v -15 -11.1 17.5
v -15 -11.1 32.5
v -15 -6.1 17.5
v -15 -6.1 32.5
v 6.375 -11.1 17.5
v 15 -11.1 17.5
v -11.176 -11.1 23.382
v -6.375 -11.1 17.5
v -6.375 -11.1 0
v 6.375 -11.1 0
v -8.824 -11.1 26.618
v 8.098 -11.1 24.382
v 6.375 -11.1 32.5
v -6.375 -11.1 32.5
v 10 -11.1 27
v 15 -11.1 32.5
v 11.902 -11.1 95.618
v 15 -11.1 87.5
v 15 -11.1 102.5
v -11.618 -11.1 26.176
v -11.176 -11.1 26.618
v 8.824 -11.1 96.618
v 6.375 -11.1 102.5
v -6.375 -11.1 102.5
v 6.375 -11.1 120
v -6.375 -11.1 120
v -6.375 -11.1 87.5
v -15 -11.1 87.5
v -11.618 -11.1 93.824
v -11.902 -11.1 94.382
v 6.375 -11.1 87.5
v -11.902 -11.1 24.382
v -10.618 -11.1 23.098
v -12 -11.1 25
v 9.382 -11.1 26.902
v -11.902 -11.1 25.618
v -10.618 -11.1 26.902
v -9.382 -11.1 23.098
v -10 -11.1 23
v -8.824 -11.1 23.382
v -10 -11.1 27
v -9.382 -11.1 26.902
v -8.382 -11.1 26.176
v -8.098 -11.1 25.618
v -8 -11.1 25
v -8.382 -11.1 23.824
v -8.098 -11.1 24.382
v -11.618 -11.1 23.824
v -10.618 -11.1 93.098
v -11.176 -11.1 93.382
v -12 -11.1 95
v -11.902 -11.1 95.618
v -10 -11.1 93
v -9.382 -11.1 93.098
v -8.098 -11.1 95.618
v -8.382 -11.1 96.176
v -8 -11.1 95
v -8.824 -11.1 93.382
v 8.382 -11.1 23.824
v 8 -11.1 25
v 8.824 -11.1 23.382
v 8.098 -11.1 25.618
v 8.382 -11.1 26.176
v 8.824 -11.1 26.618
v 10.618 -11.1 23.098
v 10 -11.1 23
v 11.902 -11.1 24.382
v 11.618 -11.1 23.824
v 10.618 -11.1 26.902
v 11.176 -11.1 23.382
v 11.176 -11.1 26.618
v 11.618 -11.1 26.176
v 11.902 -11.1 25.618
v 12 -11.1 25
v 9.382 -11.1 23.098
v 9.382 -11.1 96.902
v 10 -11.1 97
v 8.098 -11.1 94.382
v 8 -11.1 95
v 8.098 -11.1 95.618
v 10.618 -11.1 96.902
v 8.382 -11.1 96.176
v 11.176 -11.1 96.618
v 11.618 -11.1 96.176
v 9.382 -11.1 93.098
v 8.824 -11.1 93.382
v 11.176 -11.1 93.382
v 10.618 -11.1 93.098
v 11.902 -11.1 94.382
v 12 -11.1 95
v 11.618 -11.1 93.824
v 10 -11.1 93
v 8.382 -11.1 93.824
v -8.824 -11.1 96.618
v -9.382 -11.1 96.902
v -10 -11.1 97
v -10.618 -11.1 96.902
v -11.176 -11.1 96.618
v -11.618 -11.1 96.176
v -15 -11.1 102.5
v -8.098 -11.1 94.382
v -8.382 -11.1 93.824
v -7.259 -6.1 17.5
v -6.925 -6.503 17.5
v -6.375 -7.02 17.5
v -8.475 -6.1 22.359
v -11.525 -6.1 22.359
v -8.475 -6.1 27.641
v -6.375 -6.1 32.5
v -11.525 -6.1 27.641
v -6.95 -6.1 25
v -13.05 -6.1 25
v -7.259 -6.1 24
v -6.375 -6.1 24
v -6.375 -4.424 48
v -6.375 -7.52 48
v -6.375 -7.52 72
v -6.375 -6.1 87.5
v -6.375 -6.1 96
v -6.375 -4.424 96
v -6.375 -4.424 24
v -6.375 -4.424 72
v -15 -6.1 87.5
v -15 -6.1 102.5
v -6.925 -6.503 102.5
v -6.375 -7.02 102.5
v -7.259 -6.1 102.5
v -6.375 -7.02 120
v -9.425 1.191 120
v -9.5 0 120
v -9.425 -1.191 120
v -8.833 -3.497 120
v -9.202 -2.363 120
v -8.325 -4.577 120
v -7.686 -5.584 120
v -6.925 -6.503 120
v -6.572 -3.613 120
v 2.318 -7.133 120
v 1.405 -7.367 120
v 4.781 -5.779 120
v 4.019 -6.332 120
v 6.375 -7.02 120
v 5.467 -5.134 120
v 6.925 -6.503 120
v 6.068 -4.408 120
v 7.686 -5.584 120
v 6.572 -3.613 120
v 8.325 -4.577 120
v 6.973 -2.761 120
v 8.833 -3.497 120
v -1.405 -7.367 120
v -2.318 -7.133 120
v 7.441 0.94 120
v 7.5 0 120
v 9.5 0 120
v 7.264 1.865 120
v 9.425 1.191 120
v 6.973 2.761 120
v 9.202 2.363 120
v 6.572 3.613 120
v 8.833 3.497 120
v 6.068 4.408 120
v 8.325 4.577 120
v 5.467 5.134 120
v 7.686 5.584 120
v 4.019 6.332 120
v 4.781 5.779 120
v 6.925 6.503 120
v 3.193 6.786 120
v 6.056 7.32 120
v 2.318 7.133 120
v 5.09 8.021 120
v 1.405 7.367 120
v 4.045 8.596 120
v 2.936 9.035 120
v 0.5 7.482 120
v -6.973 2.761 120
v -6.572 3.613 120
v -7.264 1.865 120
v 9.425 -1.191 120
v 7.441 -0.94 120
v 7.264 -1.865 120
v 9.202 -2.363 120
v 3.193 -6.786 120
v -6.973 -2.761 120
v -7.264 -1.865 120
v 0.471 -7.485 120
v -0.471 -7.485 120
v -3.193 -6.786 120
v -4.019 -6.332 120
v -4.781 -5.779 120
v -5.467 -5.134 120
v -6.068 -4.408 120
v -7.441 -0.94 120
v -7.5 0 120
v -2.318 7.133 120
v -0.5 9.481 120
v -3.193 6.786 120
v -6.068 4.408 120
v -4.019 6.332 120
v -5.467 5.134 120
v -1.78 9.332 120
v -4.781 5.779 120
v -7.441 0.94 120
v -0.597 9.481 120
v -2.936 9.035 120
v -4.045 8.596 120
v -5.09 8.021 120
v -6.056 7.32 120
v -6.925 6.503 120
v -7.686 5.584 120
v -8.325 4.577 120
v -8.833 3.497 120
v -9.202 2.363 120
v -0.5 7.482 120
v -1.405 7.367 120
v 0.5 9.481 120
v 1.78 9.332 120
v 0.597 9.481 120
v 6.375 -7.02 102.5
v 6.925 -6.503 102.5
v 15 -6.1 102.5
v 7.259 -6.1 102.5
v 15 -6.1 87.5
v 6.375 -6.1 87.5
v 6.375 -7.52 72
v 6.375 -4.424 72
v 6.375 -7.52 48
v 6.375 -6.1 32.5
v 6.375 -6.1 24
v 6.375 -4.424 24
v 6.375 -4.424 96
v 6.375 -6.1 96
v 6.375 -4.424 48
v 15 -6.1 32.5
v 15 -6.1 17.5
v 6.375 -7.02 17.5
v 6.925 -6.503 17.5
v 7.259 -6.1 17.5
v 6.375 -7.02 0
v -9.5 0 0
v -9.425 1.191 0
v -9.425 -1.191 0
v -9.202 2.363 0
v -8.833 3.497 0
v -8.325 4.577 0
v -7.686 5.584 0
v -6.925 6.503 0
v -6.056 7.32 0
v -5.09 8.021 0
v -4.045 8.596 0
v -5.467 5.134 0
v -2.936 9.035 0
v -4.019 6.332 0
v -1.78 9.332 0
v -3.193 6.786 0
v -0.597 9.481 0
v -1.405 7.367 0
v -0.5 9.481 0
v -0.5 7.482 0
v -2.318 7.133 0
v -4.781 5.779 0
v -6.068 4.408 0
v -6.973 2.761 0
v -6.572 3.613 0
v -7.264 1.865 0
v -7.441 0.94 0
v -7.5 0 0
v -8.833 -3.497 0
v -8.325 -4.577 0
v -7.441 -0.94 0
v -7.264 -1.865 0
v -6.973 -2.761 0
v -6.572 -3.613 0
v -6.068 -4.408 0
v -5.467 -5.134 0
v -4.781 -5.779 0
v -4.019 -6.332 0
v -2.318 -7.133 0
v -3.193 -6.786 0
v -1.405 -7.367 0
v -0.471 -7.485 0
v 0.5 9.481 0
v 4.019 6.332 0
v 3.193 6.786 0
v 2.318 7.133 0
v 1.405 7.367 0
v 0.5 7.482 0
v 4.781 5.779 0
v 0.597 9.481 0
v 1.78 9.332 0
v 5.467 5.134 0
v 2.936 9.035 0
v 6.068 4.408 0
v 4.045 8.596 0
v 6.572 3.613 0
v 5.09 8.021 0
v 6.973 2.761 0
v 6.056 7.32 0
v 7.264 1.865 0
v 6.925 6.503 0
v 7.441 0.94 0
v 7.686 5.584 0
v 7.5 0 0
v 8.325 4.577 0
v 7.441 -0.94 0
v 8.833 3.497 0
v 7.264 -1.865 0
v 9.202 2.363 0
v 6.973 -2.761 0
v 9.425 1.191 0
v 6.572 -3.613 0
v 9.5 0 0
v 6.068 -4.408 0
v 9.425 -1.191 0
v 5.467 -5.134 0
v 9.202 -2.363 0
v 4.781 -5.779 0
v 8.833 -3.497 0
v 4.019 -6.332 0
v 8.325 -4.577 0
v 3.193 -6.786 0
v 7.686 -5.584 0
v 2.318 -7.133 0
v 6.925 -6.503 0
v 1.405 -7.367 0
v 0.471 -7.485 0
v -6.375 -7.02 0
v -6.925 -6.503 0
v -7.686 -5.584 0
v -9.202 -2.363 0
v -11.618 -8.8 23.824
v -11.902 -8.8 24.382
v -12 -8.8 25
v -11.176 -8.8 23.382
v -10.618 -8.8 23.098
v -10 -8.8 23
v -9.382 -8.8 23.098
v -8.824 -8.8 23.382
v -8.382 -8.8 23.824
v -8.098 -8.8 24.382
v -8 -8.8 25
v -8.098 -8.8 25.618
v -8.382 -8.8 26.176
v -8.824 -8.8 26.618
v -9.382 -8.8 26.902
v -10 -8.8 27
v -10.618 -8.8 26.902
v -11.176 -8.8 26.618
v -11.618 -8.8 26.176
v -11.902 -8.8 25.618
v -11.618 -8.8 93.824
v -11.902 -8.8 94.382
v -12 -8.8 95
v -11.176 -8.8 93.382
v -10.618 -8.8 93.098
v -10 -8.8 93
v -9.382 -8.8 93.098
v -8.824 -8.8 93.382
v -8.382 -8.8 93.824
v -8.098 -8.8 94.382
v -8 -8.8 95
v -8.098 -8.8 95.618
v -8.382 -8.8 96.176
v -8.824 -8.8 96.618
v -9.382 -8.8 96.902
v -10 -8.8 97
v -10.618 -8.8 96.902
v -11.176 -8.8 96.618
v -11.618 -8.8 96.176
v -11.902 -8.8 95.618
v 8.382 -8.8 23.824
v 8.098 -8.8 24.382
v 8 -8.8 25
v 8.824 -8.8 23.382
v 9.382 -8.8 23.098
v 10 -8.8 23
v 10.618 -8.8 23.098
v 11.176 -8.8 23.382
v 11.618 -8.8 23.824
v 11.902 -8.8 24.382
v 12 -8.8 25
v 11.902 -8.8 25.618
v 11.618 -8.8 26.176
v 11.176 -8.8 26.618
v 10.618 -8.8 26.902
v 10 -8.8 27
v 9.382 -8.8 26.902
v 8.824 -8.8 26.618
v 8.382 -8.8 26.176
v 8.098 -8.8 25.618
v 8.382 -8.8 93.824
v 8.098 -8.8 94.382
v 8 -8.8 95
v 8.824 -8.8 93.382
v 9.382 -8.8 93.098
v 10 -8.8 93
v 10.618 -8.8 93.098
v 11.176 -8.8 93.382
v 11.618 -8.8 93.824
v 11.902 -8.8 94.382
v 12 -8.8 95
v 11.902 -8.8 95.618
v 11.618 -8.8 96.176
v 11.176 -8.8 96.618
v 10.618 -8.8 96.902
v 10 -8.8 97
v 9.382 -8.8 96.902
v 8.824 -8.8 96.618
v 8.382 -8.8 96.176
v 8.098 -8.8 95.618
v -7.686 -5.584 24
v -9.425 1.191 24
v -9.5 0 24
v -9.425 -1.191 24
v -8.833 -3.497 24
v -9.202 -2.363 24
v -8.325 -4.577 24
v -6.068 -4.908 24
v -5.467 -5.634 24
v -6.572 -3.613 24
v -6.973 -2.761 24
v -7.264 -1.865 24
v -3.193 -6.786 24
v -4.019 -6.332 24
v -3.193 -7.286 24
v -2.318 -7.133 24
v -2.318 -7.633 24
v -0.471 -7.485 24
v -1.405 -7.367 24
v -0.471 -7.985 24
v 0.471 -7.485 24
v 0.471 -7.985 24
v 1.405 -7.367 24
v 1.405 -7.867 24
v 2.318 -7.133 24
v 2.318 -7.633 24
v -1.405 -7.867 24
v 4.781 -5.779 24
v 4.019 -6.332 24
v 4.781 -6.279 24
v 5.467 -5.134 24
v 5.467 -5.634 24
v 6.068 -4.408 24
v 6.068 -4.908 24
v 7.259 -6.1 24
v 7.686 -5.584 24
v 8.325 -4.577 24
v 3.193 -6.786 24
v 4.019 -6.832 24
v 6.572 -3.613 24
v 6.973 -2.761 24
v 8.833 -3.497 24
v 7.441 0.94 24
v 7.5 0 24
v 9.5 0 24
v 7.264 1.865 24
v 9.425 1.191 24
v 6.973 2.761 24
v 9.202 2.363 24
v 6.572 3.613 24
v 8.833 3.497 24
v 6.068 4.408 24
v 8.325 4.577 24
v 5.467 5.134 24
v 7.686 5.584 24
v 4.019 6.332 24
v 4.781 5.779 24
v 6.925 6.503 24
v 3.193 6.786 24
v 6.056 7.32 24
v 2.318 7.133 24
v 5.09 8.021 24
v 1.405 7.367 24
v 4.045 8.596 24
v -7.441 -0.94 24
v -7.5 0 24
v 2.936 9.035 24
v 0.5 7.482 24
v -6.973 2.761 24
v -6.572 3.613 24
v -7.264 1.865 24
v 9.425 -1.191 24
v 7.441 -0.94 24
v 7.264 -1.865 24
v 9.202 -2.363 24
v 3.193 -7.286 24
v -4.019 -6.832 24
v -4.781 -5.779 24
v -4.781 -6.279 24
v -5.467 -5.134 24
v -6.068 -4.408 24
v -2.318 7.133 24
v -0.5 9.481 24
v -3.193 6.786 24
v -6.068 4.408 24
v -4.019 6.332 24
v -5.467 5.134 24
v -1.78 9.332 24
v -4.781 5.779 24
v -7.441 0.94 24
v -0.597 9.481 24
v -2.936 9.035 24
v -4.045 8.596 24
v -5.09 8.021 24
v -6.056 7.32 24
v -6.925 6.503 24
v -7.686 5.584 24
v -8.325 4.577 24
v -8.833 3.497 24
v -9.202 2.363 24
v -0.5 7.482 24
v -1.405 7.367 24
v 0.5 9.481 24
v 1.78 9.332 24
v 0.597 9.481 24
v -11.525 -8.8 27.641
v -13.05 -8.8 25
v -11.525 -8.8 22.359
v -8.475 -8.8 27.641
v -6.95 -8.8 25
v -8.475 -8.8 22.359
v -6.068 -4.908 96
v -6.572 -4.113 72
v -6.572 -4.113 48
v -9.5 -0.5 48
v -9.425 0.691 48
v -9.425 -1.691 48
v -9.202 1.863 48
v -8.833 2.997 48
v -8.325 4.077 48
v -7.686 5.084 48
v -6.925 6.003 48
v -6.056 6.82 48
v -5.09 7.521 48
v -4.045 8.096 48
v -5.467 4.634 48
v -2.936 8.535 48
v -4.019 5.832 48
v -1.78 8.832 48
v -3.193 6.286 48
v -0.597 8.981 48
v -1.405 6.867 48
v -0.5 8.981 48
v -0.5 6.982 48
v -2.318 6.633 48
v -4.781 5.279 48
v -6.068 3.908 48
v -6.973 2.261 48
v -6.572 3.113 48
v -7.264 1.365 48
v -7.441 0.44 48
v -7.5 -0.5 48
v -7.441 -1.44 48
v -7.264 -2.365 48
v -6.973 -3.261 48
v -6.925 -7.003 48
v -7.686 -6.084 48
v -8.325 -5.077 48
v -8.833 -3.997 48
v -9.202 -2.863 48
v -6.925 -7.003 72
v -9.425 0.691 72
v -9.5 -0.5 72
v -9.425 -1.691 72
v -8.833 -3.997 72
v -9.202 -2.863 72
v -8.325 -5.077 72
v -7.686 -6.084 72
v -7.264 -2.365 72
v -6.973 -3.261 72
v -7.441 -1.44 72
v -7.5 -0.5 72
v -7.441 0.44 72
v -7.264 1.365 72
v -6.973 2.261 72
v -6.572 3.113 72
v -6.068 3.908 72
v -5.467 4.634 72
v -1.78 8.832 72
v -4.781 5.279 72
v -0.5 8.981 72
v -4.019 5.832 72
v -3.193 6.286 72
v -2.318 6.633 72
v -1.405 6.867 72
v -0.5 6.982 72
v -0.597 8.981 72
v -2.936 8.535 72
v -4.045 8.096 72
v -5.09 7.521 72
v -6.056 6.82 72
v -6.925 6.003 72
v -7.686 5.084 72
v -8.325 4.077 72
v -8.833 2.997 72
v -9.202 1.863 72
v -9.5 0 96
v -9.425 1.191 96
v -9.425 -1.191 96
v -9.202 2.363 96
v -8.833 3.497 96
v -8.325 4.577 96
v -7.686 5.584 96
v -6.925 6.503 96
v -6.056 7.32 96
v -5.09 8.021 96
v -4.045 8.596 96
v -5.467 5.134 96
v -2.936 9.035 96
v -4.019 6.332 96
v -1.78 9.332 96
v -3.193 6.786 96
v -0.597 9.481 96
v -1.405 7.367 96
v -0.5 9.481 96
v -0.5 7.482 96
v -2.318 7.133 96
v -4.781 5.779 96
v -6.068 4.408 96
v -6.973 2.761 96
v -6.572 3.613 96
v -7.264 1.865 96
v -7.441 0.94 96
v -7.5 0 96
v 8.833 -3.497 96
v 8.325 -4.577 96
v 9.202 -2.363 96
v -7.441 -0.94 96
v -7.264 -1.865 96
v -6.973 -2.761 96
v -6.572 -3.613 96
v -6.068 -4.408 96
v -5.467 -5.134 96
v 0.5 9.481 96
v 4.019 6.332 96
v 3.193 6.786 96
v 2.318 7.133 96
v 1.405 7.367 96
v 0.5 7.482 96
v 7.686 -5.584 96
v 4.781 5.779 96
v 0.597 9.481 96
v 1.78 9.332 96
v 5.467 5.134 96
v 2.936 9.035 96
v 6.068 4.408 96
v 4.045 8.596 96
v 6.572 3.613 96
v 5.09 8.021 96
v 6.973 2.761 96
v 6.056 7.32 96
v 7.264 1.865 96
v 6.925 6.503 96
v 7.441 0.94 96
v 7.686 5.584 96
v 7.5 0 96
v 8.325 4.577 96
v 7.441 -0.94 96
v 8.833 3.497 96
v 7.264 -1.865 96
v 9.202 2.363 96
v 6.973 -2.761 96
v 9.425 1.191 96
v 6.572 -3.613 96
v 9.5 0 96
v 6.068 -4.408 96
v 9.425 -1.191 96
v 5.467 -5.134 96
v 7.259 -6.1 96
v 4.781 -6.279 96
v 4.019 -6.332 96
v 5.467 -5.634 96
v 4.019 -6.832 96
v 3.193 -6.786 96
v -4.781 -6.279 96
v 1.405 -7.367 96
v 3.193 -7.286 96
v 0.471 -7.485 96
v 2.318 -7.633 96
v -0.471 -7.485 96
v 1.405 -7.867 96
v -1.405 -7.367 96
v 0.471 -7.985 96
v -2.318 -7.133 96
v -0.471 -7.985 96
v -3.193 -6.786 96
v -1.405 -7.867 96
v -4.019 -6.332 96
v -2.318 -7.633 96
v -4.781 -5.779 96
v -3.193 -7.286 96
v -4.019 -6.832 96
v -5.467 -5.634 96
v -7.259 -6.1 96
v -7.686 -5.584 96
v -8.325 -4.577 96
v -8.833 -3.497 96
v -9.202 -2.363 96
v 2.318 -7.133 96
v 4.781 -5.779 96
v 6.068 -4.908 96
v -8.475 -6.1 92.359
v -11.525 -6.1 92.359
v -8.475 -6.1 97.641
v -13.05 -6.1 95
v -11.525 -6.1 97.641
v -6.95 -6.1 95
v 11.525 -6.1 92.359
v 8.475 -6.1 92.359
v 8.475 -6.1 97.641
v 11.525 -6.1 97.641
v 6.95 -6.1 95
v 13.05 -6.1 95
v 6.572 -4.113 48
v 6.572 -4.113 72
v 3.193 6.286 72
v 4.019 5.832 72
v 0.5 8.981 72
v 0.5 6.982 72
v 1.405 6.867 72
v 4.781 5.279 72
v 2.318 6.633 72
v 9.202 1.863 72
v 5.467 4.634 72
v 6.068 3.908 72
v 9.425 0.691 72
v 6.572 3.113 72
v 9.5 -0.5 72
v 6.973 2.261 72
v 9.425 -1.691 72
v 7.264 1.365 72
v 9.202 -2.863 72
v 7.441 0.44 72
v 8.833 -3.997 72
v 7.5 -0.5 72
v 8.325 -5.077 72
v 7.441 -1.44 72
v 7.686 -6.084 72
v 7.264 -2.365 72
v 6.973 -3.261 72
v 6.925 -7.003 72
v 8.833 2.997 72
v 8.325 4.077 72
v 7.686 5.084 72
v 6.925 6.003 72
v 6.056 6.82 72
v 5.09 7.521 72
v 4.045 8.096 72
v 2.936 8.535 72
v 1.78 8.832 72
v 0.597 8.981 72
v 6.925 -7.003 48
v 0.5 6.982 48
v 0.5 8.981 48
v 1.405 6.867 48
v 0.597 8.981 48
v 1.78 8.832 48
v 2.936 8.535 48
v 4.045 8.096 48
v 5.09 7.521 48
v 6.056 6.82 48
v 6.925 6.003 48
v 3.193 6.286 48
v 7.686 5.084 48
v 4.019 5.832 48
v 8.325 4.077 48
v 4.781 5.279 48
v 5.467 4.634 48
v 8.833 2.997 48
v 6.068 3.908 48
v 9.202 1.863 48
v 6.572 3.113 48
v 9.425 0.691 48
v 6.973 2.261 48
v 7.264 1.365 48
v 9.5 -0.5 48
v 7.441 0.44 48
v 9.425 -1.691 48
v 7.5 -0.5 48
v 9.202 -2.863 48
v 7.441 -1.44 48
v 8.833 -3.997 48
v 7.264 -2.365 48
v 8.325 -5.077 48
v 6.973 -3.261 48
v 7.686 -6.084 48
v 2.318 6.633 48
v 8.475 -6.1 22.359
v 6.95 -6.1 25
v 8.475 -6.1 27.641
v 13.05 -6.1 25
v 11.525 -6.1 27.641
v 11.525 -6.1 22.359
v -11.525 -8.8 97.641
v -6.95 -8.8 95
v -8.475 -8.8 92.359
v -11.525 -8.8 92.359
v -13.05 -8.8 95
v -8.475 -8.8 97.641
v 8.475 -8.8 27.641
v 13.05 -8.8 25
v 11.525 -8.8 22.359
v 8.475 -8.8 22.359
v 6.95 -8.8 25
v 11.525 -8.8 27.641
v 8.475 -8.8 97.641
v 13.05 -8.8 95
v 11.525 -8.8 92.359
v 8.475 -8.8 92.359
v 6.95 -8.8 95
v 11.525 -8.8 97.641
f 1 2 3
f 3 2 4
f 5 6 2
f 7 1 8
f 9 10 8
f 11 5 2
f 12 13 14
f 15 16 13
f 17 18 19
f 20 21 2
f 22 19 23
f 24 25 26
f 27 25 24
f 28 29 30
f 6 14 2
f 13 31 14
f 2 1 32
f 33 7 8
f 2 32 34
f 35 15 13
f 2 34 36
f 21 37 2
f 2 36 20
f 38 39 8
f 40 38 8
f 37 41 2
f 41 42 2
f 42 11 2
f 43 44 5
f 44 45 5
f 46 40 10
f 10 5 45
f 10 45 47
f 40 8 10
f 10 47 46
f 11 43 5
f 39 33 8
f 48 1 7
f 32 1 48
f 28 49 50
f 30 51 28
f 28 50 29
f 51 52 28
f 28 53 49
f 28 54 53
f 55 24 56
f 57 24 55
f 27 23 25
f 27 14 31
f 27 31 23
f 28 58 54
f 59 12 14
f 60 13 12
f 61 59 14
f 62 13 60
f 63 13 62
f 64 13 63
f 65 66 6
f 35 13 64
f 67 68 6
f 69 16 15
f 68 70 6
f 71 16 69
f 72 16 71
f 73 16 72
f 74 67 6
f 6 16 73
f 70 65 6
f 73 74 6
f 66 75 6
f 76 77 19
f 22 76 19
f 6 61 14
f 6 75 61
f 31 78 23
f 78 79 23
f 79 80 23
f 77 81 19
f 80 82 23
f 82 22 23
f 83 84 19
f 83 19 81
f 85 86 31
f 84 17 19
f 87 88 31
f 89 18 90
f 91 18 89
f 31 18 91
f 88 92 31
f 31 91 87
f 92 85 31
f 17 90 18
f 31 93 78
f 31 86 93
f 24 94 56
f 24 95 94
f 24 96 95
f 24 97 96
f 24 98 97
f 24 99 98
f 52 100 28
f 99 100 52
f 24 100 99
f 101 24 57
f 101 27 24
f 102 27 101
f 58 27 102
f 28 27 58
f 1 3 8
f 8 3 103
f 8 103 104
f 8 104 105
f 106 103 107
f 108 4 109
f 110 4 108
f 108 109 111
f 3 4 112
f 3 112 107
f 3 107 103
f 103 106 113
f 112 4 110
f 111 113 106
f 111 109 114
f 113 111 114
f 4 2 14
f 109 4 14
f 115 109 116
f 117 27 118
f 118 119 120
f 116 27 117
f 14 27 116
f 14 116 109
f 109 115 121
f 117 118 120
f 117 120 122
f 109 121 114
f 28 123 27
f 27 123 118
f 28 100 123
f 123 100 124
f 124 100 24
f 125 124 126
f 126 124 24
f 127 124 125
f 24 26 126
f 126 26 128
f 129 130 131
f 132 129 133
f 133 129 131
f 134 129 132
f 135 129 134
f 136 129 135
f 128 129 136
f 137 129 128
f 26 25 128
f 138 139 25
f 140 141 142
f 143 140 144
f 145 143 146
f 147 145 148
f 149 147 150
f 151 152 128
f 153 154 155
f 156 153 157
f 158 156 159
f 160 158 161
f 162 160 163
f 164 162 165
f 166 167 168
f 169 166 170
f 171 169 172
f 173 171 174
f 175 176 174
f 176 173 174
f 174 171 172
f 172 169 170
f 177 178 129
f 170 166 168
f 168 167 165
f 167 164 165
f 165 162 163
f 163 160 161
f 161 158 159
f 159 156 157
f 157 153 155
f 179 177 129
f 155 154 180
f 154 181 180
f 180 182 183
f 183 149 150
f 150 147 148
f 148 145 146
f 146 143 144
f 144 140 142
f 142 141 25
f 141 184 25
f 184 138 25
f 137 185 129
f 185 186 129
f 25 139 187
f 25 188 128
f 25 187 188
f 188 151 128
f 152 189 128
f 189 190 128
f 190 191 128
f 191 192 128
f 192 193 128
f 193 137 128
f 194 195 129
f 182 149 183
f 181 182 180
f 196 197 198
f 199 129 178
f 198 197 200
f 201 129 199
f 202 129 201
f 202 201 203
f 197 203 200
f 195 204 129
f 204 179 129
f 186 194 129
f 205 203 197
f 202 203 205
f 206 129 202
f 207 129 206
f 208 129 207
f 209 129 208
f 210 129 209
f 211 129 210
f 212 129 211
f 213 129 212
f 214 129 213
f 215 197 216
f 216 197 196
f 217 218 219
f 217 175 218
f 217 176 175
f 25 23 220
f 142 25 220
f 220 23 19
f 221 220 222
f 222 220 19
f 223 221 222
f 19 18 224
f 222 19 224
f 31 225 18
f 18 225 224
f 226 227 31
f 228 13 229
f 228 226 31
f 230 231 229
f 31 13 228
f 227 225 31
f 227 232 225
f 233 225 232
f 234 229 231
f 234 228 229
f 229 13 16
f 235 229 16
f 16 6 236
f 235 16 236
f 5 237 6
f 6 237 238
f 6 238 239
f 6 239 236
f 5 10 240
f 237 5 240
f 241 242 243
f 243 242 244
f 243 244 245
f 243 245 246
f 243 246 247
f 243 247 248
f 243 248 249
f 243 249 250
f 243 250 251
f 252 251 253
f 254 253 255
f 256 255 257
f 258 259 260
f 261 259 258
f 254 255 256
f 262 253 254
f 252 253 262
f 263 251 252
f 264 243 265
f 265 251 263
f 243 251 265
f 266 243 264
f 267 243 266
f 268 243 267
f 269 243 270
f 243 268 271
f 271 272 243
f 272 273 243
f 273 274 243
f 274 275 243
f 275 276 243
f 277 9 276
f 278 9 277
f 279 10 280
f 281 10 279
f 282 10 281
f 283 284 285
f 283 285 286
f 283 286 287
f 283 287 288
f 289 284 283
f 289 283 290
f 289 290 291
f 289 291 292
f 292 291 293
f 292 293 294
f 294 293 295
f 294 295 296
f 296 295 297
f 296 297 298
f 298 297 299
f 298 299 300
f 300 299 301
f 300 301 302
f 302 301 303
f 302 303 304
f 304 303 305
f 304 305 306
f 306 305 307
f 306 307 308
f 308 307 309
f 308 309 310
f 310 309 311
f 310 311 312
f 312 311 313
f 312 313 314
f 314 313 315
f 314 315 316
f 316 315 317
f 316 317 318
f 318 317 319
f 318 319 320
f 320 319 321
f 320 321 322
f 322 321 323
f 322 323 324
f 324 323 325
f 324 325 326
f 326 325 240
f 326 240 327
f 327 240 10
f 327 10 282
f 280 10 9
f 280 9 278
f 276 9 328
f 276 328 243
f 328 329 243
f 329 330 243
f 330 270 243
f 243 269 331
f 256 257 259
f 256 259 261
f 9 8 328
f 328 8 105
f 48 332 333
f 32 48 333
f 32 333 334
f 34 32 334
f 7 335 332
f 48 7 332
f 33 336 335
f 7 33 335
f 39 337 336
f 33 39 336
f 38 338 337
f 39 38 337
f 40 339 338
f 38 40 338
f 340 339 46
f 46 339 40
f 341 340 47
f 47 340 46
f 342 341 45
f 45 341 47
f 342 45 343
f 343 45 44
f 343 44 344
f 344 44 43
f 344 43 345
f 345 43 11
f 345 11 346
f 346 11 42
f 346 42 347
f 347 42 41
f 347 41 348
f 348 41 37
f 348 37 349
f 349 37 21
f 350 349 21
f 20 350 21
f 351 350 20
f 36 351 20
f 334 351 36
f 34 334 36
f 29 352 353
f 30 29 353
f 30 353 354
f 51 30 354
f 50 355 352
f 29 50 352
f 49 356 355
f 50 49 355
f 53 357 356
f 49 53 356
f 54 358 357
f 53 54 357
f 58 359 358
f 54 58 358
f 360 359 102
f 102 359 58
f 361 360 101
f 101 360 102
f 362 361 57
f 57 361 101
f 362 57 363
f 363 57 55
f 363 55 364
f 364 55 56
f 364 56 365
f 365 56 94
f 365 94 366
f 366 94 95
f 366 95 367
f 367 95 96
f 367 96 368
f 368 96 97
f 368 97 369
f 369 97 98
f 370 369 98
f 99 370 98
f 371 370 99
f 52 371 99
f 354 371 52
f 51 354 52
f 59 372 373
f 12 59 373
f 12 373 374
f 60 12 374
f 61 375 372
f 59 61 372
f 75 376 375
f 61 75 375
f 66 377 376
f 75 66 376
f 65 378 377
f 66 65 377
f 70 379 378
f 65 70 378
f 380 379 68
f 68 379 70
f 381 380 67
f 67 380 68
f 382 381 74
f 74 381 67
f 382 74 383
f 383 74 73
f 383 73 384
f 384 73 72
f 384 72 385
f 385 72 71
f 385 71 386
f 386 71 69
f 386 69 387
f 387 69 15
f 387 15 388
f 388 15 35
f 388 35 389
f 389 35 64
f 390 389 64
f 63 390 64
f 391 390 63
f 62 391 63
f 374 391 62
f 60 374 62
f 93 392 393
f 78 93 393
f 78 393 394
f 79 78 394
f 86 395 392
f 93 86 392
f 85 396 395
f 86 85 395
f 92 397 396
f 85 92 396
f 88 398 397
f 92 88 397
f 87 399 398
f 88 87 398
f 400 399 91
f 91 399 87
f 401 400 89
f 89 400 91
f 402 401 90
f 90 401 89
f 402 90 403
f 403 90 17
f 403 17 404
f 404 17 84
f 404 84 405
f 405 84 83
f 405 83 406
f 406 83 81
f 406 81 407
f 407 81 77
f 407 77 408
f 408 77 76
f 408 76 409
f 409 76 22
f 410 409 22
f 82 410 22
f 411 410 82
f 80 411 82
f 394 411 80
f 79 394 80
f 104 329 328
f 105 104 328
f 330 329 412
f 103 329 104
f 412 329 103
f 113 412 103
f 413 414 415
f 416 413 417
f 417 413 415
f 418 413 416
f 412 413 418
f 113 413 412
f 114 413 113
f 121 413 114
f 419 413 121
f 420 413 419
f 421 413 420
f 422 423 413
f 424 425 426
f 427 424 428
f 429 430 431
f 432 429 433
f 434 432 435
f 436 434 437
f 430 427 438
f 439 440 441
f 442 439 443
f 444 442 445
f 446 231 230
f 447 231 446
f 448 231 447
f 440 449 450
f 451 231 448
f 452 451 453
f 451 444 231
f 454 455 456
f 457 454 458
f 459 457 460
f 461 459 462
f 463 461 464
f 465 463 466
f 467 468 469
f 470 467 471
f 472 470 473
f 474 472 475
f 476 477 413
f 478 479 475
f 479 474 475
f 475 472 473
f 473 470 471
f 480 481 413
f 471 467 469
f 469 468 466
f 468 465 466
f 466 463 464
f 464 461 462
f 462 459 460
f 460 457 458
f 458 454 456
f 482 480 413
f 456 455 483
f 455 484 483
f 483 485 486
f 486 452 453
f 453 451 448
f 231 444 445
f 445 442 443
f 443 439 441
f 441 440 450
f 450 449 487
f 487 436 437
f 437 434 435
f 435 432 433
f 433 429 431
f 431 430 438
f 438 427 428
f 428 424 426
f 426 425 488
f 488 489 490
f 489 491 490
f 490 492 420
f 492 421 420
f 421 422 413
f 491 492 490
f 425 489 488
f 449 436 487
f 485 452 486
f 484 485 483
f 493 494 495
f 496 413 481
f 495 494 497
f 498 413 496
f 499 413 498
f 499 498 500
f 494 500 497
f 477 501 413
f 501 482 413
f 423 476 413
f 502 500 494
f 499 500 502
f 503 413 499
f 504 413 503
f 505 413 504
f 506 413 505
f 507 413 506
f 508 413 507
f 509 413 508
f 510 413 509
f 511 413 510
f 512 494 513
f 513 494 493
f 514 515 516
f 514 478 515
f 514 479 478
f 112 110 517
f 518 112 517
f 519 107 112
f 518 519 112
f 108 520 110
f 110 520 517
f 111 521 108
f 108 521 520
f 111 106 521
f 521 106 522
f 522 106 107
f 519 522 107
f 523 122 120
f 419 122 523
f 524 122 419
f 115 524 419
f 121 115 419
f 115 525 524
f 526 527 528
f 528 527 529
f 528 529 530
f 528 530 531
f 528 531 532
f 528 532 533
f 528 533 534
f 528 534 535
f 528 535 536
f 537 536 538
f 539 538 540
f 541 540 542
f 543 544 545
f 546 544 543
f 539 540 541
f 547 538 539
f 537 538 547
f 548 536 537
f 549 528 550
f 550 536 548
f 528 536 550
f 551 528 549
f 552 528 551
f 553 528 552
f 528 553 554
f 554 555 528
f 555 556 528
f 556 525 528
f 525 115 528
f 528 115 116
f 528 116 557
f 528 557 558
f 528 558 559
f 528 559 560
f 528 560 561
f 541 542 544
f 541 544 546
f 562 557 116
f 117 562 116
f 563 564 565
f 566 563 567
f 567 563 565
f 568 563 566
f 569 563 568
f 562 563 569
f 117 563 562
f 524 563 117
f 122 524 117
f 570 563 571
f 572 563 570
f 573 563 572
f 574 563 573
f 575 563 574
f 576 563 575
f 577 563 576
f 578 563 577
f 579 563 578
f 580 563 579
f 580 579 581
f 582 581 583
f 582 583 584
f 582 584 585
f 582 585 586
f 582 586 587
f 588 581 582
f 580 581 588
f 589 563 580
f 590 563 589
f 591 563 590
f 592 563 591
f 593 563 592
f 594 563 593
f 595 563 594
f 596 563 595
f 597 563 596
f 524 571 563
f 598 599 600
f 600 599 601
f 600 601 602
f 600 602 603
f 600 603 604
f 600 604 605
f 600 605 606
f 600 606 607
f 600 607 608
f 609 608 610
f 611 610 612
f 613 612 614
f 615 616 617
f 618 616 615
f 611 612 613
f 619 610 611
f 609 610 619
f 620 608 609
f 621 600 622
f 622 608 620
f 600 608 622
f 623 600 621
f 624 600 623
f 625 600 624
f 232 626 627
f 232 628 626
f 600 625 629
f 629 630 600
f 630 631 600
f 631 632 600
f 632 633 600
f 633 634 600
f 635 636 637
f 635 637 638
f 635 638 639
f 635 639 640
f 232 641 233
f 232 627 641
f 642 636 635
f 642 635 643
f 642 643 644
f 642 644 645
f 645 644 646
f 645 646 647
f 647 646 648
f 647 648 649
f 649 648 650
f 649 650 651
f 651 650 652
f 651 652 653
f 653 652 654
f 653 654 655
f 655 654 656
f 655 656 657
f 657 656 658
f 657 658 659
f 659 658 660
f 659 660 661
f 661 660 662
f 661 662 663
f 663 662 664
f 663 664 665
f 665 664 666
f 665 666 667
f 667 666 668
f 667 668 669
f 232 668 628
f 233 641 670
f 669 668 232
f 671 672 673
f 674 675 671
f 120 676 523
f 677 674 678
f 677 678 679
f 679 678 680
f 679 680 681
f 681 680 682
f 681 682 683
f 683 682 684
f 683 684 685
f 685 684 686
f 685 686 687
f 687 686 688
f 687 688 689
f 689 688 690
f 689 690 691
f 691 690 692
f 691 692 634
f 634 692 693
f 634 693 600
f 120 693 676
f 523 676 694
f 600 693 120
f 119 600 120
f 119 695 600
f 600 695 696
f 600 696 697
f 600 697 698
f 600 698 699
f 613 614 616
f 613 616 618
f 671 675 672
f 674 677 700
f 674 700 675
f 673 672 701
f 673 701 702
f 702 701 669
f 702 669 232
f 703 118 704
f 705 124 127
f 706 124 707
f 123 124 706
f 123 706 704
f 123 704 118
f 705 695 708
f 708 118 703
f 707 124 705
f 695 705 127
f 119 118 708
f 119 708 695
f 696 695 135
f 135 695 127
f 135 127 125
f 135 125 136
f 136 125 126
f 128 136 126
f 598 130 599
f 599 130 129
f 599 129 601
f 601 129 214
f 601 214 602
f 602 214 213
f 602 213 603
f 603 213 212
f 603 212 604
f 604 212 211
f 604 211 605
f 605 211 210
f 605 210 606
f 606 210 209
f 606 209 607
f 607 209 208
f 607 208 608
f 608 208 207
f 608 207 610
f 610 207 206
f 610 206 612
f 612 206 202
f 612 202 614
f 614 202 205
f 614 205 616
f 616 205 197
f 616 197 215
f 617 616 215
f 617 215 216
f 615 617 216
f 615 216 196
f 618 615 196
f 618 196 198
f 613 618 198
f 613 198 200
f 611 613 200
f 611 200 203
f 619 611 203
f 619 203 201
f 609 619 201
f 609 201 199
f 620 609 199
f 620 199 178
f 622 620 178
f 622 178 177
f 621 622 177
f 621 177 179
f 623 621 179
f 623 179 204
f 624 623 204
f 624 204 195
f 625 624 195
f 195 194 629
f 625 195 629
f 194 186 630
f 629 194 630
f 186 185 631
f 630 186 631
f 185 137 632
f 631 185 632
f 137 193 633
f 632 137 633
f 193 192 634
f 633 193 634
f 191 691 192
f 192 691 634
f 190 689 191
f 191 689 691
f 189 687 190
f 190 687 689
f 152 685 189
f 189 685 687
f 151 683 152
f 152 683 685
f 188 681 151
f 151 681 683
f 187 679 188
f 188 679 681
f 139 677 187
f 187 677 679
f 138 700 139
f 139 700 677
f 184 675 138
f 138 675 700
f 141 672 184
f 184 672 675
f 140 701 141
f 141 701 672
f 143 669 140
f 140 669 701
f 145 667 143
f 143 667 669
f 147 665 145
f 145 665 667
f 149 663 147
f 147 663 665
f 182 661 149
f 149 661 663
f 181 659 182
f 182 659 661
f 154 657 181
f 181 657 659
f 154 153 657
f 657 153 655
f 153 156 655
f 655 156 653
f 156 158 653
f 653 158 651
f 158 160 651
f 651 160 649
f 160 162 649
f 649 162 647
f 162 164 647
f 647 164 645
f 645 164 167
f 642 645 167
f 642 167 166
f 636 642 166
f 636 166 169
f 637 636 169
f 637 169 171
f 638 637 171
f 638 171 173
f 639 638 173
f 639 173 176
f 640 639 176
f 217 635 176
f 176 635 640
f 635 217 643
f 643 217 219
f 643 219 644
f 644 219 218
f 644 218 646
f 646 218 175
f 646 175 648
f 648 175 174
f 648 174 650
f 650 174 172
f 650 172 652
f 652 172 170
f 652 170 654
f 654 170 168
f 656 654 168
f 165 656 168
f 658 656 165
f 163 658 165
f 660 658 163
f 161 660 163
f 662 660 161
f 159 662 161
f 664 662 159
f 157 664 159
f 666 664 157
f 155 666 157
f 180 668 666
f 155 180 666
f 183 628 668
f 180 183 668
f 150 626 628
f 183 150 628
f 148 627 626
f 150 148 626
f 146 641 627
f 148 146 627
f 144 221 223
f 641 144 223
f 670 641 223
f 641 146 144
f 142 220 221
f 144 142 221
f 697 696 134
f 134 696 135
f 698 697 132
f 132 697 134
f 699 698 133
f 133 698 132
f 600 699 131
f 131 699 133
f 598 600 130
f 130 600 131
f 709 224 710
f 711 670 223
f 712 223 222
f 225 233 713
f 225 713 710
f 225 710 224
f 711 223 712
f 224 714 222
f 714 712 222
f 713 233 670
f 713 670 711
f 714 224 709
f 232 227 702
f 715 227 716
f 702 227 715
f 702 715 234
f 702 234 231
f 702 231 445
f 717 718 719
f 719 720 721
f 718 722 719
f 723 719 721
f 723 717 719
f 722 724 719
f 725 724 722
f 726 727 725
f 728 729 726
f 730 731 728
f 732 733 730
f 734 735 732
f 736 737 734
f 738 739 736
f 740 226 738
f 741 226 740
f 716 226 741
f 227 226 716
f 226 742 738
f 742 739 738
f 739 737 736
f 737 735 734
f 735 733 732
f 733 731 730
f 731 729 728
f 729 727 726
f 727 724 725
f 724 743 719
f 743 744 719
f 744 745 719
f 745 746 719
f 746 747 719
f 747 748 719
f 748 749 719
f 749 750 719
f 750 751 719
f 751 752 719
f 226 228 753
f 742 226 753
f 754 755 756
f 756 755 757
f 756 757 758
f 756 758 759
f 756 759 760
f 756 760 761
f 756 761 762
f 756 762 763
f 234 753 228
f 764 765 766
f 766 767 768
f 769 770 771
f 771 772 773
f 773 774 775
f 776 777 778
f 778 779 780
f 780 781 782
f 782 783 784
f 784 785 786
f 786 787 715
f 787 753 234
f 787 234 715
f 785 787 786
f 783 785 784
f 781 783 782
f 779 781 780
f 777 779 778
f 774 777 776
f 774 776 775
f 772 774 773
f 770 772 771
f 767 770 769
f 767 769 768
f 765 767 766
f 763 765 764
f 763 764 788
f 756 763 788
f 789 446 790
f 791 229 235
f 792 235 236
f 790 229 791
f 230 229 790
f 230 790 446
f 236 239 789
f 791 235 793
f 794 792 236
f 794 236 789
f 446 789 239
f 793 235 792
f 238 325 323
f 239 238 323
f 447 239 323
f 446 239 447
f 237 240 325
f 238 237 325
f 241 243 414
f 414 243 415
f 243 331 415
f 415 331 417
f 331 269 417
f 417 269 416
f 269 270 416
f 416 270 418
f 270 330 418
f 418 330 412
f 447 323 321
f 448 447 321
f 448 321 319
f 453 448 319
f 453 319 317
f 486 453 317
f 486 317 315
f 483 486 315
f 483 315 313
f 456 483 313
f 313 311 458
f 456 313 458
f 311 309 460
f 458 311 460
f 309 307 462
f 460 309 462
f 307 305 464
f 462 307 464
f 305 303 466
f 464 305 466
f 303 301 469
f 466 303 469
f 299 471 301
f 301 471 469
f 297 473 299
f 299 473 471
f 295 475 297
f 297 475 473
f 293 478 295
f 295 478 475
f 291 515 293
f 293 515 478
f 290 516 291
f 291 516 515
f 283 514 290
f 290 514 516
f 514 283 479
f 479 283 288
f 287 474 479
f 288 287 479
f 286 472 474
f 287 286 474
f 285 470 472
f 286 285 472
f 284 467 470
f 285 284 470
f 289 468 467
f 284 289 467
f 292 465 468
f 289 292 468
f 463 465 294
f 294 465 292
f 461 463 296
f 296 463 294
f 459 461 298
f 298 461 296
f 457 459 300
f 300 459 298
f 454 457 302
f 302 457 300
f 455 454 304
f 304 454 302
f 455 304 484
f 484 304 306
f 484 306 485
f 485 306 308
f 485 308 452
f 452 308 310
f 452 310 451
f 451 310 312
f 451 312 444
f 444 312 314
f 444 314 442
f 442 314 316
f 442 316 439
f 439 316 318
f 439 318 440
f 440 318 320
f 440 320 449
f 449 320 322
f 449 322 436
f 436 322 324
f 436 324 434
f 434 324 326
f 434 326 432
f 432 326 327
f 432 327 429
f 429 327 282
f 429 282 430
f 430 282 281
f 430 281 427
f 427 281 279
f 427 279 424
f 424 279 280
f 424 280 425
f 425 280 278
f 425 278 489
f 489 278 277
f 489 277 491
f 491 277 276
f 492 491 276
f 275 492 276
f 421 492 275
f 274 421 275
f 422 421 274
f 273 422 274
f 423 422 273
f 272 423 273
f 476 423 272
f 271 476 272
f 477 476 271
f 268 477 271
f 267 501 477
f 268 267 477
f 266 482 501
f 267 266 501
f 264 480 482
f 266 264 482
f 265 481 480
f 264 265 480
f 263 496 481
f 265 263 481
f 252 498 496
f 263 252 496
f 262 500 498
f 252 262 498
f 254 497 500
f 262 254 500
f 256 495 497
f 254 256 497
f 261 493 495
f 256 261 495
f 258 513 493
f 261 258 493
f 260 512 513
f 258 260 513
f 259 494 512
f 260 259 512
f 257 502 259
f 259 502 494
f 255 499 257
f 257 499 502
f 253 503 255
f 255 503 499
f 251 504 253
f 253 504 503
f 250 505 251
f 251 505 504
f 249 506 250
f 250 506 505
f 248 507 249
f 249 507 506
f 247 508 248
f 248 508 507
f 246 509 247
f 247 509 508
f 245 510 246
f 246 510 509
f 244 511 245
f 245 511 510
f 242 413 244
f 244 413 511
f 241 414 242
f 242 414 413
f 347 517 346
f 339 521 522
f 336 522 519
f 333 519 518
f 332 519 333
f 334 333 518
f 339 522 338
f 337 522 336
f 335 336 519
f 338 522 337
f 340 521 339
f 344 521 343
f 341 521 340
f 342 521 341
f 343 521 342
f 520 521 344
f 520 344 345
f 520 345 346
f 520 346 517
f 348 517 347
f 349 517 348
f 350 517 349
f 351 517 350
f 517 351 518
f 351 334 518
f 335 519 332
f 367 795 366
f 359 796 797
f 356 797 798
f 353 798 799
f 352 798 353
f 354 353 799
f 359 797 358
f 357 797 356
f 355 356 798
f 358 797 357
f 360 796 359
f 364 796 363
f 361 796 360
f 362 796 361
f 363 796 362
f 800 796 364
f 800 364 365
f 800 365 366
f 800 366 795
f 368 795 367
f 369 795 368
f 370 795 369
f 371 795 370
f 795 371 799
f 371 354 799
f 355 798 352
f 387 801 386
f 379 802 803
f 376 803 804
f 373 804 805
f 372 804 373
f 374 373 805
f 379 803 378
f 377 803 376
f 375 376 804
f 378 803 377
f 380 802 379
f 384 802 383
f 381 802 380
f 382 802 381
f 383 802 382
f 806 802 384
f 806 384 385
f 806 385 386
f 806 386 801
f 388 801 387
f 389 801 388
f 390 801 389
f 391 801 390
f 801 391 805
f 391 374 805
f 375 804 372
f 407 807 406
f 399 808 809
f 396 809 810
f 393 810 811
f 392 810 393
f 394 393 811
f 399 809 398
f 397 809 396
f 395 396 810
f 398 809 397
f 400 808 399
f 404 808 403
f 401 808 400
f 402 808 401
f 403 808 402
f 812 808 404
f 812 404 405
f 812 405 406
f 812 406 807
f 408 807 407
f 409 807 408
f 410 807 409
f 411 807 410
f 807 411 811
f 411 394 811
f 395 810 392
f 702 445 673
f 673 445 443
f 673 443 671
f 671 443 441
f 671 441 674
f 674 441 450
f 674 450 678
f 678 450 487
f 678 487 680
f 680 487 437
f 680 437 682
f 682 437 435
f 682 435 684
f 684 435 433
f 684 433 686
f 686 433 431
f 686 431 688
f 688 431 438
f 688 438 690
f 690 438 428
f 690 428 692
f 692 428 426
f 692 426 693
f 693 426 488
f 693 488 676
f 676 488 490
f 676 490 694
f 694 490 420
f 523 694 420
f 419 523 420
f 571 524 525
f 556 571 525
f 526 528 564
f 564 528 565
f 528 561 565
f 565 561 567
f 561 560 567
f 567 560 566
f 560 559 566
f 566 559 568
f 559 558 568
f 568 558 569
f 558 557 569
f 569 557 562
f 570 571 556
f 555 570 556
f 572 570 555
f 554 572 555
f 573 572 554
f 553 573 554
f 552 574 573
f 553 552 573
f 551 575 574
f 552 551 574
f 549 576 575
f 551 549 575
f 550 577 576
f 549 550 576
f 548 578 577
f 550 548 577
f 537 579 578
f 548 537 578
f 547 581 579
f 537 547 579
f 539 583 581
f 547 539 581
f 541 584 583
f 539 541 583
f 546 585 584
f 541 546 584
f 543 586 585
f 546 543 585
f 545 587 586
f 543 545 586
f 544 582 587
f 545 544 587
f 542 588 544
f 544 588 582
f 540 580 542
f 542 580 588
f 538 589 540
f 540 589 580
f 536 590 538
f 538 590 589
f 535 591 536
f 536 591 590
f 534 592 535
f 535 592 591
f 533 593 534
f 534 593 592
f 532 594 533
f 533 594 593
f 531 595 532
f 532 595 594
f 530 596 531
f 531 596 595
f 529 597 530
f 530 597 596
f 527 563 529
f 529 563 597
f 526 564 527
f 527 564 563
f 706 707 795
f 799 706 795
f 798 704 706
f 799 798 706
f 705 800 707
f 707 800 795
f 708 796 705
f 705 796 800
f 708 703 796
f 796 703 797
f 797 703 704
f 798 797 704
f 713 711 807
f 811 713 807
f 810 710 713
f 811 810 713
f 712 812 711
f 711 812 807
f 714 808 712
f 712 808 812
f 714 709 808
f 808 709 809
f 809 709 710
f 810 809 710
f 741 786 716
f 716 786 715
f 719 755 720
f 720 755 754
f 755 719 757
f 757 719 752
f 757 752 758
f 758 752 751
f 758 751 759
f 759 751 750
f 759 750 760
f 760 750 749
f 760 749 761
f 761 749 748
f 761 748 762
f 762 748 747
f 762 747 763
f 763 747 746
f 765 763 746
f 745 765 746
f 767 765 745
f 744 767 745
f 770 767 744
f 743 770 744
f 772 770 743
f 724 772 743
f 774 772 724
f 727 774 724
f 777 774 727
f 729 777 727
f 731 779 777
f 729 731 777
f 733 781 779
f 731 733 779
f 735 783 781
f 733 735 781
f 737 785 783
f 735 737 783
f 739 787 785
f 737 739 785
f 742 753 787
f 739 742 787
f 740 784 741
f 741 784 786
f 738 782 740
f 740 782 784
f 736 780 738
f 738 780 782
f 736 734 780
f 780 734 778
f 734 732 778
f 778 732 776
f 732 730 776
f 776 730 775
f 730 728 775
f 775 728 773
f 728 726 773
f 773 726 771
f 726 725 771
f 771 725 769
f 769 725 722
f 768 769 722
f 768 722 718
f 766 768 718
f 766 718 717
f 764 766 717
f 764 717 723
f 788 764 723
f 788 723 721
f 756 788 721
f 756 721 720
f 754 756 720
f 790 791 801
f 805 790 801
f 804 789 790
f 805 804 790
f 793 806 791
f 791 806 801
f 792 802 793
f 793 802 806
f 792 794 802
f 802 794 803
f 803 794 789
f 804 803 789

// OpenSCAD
module lb_socket( r, h, wall_thickness = 2, opening_length = 1, $fn = 20 ) {
	difference () {
		cylinder( r = r + wall_thickness, h = h, $fn = $fn );
		translate( [ 0, 0, -0.1 ] ) {
			cylinder( r = r, h = h + 0.2, $fn = $fn );
			translate( [ -opening_length / 2, r - 0.2, 0 ] )
				cube( [ opening_length, wall_thickness + 0.4, h + 0.2 ] );
		}
	}
}

lb_socket( 7.5, 24, $fn = 50 );
translate ( [ 0, -0.5, 2 * 24 ] )
	lb_socket( 7.5, 24, $fn = 50 );
translate ( [ 0, 0, 4 * 24 ] )
	lb_socket( 7.5, 24, $fn = 50 );
basis_width = 0.85 * 2 * 7.5;
basis_height = 0.74 * 2 * 7.5;
difference (){
	union (){
		translate( [ - basis_width / 2, - basis_height, 0 ] )
			cube( [ basis_width, basis_height, 5 * 24 ] );
		translate ( [ -15, -basis_height, 5 * 24 / 2 - 15 / 2 - 70 / 2 ] )
			difference() {
				cube( [ 30, 5, 15 ] );
				translate( [ 5, 5 + 10, 15 / 2 ] )
					rotate( [ 90, 0, 0 ] ){
						cylinder( r = 2, h = 5 + 10.1, $fn = 20 );
						cylinder( h = 5 - 2.3 + 10, r = 6.1 / 2, $fn=6 );
					}
				translate( [ 30 - 5, 5 + 10, 15 / 2 ] )
					rotate( [ 90, 0, 0 ] ){
						cylinder( r = 2, h = 5 + 10.1, $fn = 20 );
						cylinder( h = 5 - 2.3 + 10, r = 6.1 / 2, $fn=6 );
					}
			}
		translate ( [ -15, -basis_height, 5 * 24 / 2 - 15 / 2 + 70 / 2 ] )
			difference() {
				cube( [ 30, 5, 15 ] );
				translate( [ 5, 5 + 10, 15 / 2 ] )
					rotate( [ 90, 0, 0 ] ){
						cylinder( r = 2, h = 5 + 10.1, $fn = 20 );
						cylinder( h = 5 - 2.3 + 10, r = 6.1 / 2, $fn=6 );
					}
				translate( [ 30 - 5, 5 + 10, 15 / 2 ] )
					rotate( [ 90, 0, 0 ] ){
						cylinder( r = 2, h = 5 + 10.1, $fn = 20 );
						cylinder( h = 5 - 2.3 + 10, r = 6.1 / 2, $fn=6 );
					}
			}
	}

	translate( [ 0, 0, -0.1 ] )
		cylinder( r = 7.5, h = 5 * 24 + 0.2, $fn = 50 );
	translate( [ 0, -0.5, -0.1 ] )
		cylinder( r = 7.5, h = 5 * 24 + 0.2, $fn = 50 );
}
